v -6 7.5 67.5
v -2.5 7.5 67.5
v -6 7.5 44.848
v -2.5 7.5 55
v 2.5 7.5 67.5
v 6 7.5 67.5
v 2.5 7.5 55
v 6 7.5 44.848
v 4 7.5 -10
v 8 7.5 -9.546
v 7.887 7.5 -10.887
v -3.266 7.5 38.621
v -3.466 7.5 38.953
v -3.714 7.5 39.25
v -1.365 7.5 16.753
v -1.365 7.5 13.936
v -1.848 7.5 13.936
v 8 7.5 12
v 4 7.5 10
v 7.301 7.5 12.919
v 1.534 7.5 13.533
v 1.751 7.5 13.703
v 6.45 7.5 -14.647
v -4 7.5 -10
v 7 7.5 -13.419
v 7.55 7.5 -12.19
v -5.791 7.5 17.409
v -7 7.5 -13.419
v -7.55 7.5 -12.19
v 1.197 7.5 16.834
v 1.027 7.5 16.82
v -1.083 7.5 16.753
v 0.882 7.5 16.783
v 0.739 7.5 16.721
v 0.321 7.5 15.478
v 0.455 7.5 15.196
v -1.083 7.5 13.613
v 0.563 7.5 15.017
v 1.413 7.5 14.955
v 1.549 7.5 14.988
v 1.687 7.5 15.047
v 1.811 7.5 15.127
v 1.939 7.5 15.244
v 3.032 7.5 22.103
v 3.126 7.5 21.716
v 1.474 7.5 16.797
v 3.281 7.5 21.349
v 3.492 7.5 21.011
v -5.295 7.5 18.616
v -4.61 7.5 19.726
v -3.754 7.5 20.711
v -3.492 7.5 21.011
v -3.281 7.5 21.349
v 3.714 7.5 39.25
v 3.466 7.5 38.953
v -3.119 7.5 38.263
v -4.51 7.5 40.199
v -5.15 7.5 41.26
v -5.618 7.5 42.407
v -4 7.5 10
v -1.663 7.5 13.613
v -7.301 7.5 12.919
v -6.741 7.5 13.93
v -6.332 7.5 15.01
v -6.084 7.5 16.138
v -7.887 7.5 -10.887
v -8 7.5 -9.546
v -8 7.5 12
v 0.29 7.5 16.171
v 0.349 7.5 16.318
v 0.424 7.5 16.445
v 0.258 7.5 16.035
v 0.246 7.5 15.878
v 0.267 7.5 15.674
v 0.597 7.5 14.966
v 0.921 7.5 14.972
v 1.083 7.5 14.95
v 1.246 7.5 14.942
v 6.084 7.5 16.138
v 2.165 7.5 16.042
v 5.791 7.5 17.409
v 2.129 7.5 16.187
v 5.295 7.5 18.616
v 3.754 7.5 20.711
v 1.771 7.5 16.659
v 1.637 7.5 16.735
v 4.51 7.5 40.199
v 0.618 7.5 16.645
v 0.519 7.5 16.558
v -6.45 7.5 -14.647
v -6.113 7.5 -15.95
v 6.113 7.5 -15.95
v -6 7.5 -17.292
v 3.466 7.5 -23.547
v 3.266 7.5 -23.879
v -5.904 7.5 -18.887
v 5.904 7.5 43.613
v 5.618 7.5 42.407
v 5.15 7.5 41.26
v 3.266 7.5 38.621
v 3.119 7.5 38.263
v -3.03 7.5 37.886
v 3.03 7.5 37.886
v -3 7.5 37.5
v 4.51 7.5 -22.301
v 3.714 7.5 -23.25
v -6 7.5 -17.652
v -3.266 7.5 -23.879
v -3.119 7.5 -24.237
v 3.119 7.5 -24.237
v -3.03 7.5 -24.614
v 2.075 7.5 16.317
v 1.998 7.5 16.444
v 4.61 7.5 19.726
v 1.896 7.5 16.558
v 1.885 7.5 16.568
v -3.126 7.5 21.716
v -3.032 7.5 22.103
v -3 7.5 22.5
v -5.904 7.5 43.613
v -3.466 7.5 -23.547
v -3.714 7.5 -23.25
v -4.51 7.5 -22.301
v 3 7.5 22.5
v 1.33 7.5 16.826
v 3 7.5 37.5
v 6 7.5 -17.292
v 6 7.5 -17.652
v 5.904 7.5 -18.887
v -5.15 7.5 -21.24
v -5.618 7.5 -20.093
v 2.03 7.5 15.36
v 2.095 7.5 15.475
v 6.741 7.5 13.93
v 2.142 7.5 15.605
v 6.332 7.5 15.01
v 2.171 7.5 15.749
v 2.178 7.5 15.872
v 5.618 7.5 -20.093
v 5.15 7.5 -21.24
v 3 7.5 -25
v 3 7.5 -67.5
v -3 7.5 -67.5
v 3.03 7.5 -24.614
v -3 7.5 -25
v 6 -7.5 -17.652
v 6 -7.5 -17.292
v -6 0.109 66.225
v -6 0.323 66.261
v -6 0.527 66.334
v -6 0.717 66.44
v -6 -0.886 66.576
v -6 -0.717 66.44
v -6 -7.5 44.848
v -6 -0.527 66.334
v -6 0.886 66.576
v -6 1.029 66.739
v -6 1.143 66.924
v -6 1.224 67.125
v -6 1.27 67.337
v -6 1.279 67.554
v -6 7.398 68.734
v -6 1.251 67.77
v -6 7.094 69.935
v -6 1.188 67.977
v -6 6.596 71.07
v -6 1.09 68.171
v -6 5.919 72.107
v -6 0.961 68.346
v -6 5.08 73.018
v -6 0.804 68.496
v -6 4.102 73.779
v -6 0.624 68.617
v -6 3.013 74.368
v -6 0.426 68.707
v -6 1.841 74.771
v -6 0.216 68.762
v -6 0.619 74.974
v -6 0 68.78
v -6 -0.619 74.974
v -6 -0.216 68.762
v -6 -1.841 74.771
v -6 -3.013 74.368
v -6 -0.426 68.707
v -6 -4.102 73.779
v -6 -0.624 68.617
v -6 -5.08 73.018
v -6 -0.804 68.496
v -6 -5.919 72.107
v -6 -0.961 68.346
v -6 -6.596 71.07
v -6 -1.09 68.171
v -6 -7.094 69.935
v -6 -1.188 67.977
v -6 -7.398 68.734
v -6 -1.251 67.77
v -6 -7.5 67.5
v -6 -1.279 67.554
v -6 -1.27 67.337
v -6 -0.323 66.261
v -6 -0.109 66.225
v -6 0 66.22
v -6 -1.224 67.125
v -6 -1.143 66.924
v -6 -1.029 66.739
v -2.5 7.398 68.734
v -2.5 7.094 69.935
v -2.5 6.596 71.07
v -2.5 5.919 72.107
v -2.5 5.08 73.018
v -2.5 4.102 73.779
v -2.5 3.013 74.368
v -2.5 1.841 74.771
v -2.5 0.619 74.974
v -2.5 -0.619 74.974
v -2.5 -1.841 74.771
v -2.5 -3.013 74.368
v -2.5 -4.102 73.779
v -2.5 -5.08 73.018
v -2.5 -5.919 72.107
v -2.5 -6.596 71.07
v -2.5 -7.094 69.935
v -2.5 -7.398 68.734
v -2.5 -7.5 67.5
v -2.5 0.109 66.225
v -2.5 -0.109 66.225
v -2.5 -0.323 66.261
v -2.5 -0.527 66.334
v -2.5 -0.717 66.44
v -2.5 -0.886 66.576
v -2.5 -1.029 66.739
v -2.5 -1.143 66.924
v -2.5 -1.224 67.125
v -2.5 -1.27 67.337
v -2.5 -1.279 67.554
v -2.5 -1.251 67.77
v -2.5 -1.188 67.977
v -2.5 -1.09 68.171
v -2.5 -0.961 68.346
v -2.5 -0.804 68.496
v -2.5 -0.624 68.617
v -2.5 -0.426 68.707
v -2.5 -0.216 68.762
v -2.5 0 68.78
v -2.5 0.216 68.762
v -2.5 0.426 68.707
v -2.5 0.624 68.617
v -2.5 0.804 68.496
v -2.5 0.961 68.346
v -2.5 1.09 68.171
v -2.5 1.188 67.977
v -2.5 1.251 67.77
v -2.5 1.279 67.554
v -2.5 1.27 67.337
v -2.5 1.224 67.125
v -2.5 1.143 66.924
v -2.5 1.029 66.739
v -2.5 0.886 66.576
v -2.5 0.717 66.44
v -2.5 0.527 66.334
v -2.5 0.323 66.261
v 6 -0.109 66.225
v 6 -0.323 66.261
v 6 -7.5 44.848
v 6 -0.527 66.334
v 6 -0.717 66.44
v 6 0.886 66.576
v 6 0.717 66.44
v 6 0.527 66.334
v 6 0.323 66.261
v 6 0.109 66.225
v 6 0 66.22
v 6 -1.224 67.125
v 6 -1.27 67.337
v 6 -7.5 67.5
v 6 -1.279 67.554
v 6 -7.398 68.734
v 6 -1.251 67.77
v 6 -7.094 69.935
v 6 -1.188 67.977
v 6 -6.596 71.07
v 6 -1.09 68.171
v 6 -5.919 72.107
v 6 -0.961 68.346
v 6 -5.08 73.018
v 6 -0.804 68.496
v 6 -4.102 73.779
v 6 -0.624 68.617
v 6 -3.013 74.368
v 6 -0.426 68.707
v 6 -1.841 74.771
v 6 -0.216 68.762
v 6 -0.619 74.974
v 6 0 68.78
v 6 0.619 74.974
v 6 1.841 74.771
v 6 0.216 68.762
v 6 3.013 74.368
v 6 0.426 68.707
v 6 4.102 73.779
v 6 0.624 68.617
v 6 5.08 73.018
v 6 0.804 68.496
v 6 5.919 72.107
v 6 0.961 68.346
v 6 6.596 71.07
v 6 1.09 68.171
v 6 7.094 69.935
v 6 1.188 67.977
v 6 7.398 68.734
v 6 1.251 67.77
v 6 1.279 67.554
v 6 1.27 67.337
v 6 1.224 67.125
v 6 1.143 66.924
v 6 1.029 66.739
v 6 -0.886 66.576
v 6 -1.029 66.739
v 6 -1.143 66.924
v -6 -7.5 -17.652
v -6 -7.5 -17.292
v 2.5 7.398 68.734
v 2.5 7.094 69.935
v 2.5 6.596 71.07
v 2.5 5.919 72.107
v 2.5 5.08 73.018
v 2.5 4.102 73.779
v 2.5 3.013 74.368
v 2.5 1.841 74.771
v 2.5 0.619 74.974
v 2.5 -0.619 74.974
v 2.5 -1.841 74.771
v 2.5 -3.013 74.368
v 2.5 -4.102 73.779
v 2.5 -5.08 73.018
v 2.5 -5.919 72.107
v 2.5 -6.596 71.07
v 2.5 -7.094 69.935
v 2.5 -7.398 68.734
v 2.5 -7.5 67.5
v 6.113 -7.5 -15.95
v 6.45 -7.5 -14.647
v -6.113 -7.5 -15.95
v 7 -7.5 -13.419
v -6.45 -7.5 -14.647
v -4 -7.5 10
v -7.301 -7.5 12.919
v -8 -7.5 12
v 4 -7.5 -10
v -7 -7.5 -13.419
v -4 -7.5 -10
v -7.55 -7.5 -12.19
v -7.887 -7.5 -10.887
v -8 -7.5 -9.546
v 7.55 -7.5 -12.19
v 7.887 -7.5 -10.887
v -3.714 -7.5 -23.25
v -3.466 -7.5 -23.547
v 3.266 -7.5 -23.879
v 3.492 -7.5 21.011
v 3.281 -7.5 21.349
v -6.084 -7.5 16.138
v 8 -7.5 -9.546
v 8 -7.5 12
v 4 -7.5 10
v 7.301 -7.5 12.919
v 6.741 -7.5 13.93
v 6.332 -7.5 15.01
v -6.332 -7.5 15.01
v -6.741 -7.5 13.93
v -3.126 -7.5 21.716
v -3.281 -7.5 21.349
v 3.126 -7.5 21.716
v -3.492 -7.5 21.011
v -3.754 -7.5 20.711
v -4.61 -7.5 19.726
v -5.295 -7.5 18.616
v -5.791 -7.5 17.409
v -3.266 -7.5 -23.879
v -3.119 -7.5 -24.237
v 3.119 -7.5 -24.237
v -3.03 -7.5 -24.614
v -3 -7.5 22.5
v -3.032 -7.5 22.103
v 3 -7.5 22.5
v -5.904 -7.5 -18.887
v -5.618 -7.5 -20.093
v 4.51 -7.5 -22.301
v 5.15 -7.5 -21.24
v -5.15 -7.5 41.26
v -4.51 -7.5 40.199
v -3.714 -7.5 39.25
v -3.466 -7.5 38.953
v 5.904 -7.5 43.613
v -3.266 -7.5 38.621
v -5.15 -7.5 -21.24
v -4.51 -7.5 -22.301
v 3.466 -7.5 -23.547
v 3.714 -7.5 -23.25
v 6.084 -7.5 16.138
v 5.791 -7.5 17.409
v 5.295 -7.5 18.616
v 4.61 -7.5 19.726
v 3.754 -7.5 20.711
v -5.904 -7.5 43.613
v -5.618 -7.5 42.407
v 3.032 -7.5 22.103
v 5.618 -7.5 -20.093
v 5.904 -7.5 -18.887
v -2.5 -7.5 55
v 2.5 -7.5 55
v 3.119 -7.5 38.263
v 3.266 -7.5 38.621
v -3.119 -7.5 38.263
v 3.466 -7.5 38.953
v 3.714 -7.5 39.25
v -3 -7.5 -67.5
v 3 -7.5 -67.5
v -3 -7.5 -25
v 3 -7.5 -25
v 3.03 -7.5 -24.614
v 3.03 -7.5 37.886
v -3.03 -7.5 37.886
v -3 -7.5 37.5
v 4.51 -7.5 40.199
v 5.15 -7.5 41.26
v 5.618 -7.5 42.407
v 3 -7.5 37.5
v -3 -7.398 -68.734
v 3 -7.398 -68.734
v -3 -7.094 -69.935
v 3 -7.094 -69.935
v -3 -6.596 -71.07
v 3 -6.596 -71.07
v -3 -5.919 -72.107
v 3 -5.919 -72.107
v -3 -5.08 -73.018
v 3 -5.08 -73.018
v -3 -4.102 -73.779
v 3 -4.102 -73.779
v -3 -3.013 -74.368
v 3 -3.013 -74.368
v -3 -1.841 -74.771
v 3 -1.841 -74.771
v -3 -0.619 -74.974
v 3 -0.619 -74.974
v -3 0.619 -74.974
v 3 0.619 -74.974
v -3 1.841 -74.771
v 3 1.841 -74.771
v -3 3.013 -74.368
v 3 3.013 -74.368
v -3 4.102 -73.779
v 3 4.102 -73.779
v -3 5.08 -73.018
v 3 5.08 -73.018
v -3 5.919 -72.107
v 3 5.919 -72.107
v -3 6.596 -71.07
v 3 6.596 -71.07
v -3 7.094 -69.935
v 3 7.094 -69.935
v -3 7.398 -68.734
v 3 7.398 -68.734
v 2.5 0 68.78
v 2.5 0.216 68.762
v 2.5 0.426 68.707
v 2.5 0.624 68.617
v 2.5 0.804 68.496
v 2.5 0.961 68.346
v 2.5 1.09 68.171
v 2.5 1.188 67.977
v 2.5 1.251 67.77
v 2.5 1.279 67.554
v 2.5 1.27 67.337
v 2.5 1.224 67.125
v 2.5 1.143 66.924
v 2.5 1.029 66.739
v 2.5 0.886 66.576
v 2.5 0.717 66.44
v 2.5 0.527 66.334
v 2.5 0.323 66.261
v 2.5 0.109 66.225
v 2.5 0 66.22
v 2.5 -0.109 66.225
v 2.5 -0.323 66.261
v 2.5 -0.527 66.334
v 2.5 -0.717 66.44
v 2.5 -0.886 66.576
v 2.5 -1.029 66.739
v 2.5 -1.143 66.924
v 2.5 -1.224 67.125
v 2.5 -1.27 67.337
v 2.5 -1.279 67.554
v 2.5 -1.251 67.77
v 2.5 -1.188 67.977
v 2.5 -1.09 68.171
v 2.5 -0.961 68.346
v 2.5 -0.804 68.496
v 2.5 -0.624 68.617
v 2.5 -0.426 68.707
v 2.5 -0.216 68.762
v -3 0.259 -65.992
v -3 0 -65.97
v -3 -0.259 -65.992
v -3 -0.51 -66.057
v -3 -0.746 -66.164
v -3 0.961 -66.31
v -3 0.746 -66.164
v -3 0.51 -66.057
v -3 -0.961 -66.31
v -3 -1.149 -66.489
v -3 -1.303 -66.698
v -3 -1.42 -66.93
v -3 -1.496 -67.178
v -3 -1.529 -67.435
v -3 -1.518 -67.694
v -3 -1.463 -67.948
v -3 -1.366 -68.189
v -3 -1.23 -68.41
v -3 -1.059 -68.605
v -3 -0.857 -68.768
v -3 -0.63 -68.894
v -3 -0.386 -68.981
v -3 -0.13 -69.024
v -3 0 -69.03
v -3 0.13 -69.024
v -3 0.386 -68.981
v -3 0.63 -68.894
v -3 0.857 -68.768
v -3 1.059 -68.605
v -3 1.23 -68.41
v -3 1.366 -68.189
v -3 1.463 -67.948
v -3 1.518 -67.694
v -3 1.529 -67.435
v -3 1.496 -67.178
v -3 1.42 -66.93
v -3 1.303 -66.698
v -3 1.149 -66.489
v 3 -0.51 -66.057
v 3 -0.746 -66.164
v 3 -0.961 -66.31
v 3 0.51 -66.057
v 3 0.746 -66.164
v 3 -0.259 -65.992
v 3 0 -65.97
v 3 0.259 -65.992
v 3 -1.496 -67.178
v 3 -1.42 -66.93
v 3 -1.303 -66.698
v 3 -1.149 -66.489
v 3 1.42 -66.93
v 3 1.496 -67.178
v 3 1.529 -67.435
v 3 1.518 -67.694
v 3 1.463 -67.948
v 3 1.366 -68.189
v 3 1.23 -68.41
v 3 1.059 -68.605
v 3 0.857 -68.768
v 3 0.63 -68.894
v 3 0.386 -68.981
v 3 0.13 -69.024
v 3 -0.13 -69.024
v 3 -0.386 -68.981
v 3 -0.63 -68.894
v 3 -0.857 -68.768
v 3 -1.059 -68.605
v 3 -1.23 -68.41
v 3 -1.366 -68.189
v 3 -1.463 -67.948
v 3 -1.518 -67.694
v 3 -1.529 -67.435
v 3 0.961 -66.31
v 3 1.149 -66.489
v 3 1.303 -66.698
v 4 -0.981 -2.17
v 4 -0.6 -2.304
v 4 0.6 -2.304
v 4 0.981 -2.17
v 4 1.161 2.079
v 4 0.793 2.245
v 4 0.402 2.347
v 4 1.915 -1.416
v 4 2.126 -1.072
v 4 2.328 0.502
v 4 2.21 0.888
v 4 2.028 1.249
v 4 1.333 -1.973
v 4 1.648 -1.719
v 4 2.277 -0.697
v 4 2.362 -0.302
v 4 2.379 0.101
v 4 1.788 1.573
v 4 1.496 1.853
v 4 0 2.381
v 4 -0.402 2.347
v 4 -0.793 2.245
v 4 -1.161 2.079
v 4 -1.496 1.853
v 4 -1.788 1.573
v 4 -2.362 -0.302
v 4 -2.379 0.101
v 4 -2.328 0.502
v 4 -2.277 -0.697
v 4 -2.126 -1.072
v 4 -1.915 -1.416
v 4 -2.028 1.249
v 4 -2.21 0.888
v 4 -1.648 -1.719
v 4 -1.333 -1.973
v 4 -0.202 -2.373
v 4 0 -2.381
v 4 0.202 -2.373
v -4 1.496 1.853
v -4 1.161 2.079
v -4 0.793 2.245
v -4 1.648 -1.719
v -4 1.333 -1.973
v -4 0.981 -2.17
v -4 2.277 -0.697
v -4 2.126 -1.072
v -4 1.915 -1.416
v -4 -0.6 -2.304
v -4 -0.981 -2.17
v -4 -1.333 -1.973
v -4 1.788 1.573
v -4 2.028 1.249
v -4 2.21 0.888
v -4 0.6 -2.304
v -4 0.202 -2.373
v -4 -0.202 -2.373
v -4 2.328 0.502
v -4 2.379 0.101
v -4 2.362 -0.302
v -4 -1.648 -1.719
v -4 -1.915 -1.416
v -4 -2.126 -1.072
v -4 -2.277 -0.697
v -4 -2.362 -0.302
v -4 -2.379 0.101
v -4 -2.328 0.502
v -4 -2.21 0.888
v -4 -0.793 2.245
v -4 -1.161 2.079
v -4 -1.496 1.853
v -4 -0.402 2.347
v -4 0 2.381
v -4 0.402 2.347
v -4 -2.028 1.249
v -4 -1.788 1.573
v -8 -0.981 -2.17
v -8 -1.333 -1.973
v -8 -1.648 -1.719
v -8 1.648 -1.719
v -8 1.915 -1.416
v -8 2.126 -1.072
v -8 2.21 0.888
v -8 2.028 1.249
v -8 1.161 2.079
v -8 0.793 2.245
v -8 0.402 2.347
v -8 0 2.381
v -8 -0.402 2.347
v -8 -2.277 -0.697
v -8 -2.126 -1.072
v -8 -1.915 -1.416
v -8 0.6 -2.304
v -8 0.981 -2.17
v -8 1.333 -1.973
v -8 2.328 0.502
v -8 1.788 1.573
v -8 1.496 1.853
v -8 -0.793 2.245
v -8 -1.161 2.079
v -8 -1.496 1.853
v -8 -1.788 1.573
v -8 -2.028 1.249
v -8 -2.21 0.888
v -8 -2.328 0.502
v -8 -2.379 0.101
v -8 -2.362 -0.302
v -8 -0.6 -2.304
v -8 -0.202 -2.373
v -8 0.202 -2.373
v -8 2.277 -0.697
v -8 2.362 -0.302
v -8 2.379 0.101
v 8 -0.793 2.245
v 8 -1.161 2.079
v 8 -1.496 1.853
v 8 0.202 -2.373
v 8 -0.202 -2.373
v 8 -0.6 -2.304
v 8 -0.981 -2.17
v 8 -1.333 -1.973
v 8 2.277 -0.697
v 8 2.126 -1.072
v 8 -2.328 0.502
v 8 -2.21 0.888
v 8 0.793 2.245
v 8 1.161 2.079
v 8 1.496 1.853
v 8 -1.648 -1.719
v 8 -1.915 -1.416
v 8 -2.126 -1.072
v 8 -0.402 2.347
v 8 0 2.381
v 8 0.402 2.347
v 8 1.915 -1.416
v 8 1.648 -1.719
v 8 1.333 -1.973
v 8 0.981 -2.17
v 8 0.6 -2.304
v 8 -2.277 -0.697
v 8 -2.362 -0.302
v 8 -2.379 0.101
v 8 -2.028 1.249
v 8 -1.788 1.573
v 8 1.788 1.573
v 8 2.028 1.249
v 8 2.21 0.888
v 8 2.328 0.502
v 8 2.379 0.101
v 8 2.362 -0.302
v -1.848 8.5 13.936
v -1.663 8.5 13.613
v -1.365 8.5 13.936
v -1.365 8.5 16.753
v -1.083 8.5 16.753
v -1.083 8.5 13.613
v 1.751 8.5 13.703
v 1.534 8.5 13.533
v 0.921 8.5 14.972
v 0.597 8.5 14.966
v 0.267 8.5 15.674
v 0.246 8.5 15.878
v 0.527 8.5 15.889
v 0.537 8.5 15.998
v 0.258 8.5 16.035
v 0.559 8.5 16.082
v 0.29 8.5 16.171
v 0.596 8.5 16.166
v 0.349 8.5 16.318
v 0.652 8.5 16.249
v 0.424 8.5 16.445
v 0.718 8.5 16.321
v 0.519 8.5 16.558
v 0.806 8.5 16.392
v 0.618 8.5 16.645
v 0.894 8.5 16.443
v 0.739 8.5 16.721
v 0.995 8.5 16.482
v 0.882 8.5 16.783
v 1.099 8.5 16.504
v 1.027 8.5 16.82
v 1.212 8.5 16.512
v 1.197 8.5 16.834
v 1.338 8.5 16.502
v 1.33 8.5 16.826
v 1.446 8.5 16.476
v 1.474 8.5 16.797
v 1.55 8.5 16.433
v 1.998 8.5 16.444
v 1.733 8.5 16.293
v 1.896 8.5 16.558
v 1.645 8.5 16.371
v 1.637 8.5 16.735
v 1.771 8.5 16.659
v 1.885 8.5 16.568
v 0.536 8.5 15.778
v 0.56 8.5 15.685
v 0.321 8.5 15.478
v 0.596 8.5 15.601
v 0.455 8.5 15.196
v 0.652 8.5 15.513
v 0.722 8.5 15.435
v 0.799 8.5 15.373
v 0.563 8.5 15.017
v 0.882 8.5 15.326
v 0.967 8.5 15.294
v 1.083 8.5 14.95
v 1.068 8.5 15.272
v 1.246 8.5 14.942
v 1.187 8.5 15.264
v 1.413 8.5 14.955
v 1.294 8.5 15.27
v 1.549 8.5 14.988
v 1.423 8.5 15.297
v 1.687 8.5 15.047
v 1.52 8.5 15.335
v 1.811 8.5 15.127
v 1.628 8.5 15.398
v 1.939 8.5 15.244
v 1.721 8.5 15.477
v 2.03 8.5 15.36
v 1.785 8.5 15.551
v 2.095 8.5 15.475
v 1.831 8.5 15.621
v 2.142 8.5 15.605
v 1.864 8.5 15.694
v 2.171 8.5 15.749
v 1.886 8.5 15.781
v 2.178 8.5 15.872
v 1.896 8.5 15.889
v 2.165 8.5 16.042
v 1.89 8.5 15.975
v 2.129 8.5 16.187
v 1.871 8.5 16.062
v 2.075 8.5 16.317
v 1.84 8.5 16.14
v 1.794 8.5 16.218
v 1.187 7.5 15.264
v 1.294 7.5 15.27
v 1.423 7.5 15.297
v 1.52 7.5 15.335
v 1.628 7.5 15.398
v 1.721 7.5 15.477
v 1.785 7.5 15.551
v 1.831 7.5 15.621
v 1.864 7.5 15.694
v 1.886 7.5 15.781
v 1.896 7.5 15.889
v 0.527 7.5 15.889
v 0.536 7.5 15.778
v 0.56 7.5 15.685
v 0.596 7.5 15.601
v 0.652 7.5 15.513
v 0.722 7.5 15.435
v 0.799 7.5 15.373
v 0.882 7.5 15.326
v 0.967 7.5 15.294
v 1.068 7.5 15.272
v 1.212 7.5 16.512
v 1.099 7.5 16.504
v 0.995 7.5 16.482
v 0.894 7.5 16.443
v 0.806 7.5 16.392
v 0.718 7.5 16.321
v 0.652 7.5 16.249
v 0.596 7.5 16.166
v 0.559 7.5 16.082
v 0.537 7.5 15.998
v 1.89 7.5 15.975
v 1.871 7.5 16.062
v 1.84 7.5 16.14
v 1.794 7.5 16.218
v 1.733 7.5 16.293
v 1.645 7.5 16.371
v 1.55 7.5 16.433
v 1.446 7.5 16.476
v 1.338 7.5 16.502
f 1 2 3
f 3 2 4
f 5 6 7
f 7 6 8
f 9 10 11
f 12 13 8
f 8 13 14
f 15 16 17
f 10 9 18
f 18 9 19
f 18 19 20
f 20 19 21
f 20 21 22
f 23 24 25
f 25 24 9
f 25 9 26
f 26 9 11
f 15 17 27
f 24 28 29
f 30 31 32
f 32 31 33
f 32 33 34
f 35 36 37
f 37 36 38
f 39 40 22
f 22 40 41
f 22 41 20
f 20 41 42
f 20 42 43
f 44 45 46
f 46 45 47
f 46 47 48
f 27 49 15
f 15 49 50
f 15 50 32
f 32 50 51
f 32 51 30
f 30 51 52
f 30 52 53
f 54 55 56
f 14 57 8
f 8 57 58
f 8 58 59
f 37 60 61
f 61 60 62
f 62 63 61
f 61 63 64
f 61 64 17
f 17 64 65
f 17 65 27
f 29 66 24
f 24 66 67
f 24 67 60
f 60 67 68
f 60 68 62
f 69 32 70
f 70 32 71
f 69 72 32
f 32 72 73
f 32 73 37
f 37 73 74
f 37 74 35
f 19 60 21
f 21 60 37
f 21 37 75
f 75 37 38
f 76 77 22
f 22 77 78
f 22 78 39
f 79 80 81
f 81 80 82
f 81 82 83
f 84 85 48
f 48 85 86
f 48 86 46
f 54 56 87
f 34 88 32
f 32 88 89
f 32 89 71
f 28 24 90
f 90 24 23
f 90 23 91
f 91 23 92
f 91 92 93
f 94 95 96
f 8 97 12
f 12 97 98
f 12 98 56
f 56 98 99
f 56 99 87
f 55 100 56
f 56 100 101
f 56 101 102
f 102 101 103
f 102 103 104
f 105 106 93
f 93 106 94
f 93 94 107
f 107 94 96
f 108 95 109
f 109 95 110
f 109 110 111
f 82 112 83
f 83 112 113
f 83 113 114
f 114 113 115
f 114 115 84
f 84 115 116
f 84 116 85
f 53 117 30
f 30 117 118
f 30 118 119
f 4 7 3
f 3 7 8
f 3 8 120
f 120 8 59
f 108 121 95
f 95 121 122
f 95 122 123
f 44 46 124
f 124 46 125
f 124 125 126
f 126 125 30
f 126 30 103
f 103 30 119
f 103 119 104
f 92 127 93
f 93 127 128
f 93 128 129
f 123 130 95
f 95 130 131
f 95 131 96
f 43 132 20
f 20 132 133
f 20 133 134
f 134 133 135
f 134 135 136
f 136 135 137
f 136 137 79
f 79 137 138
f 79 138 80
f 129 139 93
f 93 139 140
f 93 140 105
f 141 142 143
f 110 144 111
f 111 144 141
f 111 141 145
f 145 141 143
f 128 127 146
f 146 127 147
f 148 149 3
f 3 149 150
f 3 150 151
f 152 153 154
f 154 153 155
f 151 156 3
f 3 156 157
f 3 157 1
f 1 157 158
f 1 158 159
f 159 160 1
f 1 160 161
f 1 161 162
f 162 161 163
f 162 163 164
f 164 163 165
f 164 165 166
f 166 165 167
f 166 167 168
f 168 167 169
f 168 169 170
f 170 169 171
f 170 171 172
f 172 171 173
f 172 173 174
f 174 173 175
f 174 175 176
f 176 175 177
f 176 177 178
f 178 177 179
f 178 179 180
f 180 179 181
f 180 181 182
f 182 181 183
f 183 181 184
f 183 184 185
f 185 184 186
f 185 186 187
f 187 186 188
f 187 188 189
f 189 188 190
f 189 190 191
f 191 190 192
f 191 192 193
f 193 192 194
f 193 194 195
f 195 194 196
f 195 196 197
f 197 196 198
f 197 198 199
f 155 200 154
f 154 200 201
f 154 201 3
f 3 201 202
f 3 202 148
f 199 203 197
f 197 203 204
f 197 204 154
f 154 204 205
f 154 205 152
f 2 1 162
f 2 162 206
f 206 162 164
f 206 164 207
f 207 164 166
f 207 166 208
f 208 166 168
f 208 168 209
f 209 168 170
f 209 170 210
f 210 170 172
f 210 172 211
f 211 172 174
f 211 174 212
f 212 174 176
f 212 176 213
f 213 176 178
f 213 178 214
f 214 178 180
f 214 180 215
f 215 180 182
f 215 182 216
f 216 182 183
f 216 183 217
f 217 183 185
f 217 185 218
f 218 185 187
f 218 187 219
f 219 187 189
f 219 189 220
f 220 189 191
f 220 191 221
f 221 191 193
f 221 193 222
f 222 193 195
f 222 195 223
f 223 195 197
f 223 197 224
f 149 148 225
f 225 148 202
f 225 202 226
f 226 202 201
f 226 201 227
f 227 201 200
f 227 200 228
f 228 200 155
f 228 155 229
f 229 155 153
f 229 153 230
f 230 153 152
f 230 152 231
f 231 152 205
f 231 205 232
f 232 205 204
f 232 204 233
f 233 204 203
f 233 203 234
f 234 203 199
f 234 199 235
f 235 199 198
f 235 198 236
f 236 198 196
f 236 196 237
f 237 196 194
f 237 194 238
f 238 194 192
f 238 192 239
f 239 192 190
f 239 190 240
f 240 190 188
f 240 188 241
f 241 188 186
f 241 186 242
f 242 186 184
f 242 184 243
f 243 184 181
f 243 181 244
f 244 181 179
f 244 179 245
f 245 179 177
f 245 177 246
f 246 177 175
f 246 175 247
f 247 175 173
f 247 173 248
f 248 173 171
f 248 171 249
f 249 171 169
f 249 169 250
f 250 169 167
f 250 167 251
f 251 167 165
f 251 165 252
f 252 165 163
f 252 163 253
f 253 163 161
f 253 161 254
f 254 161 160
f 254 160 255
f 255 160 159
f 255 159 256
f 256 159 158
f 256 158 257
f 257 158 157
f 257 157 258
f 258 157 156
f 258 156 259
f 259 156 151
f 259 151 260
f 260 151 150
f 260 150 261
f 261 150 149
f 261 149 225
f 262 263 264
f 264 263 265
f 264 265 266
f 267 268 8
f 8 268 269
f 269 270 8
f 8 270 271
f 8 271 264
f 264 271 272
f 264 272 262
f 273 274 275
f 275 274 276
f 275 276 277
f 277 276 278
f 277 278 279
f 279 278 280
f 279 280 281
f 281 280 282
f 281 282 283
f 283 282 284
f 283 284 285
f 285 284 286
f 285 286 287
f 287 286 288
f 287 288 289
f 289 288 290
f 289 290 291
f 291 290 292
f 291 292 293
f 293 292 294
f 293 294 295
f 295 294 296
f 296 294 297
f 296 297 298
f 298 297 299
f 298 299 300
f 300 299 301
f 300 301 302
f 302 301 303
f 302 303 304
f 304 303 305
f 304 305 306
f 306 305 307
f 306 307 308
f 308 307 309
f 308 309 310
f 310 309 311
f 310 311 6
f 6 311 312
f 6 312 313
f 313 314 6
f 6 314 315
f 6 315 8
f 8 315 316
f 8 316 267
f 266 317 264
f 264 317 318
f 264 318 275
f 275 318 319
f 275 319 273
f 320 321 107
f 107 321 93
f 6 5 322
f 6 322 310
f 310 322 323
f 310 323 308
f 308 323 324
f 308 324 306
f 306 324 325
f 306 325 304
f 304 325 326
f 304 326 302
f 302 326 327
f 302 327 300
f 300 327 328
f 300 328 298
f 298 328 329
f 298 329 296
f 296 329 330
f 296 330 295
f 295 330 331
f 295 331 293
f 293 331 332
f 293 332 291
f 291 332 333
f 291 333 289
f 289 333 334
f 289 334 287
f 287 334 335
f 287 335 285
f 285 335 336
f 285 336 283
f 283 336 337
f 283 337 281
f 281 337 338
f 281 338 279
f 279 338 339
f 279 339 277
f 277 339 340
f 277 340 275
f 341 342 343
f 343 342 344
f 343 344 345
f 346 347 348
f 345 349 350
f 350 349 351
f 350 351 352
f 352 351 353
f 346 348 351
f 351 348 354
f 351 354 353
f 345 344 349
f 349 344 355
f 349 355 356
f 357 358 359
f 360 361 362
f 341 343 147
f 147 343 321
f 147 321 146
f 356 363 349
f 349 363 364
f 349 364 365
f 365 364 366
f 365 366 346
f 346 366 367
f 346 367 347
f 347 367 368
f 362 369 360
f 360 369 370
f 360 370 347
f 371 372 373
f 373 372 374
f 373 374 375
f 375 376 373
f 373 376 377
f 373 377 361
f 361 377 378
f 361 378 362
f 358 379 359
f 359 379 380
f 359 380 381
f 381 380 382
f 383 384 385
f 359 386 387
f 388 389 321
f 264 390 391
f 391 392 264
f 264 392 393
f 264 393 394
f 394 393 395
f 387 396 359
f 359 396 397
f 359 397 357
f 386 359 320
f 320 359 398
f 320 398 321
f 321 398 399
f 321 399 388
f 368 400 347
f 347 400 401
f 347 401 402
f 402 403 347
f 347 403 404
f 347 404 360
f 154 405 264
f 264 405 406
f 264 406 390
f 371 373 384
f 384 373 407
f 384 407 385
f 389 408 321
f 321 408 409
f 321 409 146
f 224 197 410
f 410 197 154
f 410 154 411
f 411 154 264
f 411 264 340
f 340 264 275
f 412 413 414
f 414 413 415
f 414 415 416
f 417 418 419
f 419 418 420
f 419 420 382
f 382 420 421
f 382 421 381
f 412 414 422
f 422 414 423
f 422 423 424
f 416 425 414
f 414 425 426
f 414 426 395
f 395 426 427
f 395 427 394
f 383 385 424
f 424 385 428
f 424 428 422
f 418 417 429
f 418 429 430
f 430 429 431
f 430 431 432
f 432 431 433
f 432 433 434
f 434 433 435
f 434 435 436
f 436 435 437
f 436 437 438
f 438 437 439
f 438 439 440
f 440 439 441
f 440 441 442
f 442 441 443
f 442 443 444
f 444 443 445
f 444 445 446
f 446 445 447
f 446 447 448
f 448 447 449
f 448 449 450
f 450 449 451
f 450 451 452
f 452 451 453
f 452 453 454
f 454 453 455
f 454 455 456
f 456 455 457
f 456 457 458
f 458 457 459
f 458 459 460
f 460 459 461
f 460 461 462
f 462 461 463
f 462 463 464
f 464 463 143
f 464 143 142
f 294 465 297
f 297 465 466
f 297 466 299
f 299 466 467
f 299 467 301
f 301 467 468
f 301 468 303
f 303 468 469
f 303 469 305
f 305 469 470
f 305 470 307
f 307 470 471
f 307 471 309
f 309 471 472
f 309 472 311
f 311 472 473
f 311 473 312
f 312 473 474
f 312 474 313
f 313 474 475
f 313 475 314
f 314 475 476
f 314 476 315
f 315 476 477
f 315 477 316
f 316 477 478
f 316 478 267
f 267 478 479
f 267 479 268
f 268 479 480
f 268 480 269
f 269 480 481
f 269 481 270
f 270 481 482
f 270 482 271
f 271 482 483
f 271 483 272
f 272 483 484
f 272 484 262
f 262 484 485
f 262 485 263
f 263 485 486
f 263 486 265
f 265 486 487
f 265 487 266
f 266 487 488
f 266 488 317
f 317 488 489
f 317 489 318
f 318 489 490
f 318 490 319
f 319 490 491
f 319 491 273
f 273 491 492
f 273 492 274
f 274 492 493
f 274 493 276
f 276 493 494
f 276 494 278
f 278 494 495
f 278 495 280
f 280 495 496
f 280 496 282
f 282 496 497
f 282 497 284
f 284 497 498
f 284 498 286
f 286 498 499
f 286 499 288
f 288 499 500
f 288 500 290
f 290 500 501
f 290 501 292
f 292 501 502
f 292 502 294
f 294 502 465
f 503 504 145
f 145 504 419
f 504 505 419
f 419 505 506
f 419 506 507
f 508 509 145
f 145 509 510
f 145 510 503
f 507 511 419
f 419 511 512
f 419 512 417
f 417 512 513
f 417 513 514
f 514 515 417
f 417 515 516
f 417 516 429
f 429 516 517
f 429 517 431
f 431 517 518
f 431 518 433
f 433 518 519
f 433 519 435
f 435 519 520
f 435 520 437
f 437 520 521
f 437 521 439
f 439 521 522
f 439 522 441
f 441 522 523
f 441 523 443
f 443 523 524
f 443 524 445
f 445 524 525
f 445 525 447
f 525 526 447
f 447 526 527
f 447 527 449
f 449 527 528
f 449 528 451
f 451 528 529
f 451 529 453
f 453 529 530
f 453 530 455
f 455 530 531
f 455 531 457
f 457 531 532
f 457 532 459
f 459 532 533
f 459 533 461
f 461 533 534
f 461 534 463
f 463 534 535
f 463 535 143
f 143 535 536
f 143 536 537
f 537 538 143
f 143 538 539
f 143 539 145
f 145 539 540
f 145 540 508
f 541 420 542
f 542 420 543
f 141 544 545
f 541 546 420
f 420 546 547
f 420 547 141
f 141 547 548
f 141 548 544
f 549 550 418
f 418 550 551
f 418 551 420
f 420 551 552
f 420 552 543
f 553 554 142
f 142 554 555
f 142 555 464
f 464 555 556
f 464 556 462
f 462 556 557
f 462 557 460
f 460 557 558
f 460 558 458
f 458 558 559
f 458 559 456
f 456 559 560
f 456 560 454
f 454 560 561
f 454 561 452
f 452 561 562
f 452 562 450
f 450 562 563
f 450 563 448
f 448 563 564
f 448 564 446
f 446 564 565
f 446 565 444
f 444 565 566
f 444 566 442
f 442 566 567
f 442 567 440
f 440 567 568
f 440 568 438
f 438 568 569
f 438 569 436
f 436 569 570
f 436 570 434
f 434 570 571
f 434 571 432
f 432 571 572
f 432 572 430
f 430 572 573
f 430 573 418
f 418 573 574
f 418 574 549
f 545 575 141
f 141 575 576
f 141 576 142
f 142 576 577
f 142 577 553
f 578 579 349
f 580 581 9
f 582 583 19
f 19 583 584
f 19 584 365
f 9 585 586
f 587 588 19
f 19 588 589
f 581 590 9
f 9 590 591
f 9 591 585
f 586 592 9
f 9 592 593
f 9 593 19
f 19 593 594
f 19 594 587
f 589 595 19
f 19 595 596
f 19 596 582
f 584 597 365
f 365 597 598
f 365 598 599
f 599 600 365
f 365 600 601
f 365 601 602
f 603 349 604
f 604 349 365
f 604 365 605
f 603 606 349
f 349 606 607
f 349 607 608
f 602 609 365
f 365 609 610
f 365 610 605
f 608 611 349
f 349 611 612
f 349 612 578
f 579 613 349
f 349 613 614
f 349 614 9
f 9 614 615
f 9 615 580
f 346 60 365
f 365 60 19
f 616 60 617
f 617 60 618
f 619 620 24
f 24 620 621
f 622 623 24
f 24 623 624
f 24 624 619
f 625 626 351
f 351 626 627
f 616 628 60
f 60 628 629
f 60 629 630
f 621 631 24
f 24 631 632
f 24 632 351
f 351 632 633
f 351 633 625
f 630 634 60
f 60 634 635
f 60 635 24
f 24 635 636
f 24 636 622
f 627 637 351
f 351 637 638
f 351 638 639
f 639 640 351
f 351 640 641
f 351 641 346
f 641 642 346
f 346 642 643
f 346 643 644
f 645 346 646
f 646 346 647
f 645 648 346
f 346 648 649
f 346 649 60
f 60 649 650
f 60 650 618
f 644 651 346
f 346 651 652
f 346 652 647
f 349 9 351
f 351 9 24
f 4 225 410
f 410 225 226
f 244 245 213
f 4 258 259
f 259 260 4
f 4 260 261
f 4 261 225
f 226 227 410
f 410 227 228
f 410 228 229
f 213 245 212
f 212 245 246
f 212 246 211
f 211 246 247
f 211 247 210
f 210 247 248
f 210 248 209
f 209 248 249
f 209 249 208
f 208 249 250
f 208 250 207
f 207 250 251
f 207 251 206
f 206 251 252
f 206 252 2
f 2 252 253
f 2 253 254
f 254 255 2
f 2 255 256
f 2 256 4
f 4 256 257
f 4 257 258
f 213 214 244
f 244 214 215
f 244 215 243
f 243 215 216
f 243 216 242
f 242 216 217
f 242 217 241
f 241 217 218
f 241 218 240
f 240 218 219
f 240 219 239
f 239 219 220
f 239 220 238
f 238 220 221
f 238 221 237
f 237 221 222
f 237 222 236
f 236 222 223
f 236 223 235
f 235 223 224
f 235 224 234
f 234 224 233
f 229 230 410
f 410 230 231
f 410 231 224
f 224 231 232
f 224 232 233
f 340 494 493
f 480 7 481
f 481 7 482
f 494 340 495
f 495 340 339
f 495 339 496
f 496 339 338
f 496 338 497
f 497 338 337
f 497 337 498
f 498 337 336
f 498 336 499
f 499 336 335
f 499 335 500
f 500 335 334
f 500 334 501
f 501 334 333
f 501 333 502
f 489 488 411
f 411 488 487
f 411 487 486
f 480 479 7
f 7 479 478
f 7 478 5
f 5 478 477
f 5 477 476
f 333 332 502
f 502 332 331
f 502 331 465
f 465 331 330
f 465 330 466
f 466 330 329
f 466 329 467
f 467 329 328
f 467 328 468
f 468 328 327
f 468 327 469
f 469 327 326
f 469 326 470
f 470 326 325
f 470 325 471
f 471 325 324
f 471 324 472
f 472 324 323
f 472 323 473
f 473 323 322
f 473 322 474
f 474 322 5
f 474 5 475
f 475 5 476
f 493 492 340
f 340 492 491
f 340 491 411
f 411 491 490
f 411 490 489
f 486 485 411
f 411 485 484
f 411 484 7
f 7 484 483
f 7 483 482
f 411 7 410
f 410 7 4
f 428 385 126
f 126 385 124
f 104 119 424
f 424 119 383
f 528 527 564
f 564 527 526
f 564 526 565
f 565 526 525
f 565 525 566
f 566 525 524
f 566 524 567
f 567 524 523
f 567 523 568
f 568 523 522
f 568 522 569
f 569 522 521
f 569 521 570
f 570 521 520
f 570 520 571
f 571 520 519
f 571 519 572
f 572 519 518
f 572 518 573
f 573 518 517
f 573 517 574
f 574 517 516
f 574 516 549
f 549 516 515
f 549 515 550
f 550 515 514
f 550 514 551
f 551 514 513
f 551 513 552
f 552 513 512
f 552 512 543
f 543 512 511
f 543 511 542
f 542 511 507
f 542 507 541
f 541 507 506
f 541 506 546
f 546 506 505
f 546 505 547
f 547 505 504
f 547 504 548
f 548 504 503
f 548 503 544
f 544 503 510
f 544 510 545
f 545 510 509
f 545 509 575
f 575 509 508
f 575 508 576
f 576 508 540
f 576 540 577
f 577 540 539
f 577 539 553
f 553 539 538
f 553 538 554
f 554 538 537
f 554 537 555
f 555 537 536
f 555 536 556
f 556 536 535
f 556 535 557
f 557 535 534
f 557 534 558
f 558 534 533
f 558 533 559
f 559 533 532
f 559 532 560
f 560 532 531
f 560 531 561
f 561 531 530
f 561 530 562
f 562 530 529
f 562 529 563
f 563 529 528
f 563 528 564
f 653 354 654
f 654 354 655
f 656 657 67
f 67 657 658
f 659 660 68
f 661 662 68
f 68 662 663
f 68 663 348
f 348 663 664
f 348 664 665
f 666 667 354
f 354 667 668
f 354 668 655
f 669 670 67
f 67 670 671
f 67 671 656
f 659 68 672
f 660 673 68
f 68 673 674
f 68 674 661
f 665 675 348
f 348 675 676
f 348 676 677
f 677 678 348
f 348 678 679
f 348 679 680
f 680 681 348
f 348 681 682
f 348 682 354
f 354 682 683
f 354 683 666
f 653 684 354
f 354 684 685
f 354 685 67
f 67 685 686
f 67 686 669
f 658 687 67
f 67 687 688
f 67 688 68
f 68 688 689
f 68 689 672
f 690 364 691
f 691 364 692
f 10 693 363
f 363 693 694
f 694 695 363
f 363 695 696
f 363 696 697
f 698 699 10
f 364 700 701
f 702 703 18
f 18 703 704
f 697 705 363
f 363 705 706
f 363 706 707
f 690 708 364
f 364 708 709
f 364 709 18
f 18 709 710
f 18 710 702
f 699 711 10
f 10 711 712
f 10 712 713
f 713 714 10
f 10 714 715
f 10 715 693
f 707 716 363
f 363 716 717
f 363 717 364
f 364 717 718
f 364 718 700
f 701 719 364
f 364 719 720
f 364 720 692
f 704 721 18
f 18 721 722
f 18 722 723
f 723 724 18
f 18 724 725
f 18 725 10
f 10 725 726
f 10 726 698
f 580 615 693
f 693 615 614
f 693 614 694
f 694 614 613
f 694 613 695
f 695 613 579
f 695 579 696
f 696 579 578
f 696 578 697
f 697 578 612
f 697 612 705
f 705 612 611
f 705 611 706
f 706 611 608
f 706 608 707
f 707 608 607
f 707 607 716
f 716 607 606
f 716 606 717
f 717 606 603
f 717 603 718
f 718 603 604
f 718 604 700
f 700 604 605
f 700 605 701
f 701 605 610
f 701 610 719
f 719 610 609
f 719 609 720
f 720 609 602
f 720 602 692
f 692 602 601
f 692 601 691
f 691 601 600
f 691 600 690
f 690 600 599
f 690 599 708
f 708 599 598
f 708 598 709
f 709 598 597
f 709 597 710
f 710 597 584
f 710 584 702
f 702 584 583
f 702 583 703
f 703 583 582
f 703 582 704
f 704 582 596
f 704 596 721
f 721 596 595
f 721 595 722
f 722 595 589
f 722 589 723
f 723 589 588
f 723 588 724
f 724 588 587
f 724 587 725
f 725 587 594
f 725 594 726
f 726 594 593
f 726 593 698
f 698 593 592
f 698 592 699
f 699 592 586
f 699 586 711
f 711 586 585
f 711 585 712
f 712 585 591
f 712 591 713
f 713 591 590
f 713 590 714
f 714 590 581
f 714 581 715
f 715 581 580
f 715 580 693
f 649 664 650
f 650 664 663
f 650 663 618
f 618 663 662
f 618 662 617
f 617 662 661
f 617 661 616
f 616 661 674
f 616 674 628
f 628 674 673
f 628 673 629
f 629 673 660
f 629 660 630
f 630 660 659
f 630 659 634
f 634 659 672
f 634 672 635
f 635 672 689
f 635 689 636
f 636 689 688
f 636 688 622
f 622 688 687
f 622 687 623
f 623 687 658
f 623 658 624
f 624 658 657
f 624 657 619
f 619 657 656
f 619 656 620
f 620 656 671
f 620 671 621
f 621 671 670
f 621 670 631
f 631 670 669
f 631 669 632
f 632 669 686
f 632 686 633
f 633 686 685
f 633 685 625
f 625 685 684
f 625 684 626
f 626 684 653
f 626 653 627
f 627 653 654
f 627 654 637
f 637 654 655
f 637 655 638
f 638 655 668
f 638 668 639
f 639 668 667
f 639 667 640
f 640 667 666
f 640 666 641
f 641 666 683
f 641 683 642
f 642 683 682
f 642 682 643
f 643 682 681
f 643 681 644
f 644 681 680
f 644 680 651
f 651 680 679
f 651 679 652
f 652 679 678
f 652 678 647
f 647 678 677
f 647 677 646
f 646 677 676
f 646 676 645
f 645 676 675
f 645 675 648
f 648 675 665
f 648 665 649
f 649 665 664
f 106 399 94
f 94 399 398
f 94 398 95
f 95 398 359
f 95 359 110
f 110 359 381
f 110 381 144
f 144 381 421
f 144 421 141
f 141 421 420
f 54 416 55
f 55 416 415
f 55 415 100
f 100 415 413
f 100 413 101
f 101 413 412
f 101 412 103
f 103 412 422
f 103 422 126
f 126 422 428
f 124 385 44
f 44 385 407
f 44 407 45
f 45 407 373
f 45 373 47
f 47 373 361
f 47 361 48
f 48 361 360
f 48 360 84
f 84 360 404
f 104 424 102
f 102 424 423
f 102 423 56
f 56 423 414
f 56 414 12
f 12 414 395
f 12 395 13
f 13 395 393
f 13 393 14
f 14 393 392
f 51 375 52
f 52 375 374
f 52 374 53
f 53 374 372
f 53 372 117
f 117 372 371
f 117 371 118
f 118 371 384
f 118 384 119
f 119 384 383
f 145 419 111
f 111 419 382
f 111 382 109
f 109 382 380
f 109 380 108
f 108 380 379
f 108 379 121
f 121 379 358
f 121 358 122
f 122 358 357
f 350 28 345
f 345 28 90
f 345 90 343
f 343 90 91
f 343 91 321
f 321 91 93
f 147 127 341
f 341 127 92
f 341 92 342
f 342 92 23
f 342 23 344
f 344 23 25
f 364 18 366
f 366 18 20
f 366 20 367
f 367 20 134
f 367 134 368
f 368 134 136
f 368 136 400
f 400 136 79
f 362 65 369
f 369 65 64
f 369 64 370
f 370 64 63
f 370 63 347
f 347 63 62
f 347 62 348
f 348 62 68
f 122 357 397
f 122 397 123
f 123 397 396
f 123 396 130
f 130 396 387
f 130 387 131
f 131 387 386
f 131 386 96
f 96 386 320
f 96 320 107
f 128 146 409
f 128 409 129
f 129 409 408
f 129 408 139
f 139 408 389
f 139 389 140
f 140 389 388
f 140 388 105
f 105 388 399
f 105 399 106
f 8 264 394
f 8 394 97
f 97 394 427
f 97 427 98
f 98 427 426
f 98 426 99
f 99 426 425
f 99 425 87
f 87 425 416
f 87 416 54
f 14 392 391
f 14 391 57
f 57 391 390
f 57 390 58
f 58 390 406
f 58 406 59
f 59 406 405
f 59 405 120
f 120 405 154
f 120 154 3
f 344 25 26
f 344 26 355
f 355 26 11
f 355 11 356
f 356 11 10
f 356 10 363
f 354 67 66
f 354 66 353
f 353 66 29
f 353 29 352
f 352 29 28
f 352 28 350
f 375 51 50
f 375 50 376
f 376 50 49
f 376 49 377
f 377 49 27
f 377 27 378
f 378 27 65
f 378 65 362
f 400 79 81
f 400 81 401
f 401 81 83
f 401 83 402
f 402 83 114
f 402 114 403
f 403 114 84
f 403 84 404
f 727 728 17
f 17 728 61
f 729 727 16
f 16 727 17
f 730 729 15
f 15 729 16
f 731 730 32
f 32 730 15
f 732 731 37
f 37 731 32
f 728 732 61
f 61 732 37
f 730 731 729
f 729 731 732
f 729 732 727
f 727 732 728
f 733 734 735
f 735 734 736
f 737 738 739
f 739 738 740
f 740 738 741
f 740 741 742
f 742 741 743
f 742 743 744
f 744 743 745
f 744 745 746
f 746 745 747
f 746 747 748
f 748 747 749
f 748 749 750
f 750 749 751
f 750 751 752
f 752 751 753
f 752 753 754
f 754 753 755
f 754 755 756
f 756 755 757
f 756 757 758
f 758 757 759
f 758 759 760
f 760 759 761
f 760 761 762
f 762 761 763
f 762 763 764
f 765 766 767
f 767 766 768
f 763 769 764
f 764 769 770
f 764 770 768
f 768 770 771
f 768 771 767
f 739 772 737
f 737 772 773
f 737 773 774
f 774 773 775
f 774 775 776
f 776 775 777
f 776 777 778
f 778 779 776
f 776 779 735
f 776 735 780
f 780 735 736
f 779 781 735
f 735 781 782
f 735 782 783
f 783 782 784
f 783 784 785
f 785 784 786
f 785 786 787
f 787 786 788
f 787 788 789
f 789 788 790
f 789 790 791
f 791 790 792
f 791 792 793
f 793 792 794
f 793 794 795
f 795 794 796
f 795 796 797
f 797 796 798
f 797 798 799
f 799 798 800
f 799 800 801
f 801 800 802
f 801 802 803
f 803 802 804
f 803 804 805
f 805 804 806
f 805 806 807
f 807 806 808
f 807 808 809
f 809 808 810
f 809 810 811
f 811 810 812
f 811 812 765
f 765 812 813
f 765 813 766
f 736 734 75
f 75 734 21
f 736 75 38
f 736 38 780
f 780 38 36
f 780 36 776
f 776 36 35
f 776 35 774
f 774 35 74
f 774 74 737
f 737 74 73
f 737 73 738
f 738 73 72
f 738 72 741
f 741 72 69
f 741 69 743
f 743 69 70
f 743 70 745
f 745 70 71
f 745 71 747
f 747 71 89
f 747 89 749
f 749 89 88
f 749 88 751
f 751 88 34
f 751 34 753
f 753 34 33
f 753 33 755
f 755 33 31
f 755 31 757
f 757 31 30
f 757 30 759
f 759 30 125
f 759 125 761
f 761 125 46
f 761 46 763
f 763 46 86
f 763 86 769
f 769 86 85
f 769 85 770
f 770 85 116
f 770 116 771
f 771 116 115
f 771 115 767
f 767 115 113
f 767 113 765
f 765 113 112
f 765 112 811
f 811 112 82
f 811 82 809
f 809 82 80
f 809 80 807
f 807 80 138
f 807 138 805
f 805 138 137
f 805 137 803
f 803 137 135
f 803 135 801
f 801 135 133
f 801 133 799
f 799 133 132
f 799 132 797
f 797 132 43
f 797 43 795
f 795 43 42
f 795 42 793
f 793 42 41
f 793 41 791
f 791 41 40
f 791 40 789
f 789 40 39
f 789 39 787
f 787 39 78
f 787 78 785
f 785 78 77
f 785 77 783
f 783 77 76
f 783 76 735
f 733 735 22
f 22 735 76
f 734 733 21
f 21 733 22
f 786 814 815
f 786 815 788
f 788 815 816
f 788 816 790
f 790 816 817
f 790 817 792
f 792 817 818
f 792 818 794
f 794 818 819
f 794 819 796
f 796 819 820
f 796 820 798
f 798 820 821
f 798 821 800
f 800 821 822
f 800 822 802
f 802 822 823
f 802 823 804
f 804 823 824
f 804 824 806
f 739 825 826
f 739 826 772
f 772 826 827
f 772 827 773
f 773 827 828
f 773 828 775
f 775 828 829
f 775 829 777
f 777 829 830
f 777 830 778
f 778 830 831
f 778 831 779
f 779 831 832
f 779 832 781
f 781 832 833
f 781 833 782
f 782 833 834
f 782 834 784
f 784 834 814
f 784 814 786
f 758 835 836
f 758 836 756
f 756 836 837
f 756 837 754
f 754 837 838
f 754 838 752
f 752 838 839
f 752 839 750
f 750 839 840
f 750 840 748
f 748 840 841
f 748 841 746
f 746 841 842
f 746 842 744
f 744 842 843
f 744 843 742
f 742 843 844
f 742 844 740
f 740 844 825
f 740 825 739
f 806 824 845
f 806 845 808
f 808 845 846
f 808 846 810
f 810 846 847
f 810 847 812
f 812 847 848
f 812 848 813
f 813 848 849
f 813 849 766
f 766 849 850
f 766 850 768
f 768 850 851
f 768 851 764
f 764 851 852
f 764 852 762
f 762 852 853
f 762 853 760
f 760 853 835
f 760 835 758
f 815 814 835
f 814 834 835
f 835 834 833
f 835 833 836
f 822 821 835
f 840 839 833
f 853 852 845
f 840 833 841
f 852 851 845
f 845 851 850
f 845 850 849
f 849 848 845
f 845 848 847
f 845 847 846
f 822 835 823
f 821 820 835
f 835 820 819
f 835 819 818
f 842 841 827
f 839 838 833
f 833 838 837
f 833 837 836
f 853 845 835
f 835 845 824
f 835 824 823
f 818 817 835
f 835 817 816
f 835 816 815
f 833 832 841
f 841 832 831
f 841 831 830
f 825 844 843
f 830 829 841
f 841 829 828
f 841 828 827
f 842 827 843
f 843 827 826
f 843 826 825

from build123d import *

# Parameters (mm, degrees)
SKETCH1_R           = 1.28
SKETCH1_R_2         = 2.38125
SKETCH1_R_3         = 1.53
BASE_DEPTH          = 6
ALL_CUTS_DEPTH      = 76.612498967
ALL_CUTS_DEPTH_BACK = 76.612498967
SKETCH2_W           = 5
SKETCH2_H           = 40
SKETCH2_W_2         = 6
SKETCH2_H_2         = 20
SKETCH2_H_3         = 52.5
SKETCH2_W_3         = 8
SKETCH3_W           = 16
SKETCH3_H           = 24
SKETCH3_W_2         = 8
SKETCH3_H_2         = 20
BOSS_EXTRUDE1_DEPTH = 15
SKETCH4_R           = 2.38125
CUT_EXTRUDE1_DEPTH  = 78.053552806
FILLET1_R           = 2.5
FILLET2_R           = 8
FILLET3_R           = 8
BOSS_EXTRUDE2_DEPTH = 1


with BuildPart() as part:
    # Sketch1 → BASE (new, symmetric)
    with BuildSketch(Plane(origin=(0, 0, 0), x_dir=(0, 0, -1), z_dir=(1, 0, 0))):
        with BuildLine():
            Line((-67.5, 7.5), (67.5, 7.5))
            ThreePointArc((67.5, 7.5), (75, 0), (67.5, -7.5))
            Line((67.5, -7.5), (-67.5, -7.5))
            ThreePointArc((-67.5, -7.5), (-75, 0), (-67.5, 7.5))
        make_face()
        with Locations((-67.5, 0)):
            Circle(SKETCH1_R, mode=Mode.SUBTRACT)
        Circle(SKETCH1_R_2, mode=Mode.SUBTRACT)
        with Locations((67.5, 0)):
            Circle(SKETCH1_R_3, mode=Mode.SUBTRACT)
    extrude(amount=BASE_DEPTH, both=True)

    # Sketch2 → All_Cuts (cut, two sides: drawn at the far end of the back side and taken through both)
    with BuildSketch(Plane(origin=(0, 0, 0), x_dir=(1, 0, 0), z_dir=(0, 1, 0)).offset(-ALL_CUTS_DEPTH_BACK)):
        with Locations((0, -75)):
            Rectangle(SKETCH2_W, SKETCH2_H)
        with Locations((-6, -30)):
            Rectangle(SKETCH2_W_2, SKETCH2_H_2)
        with Locations((6, -30)):
            Rectangle(SKETCH2_W_2, SKETCH2_H_2)
        with Locations((6, 48.75)):
            Rectangle(SKETCH2_W_2, SKETCH2_H_3)
        with Locations((-6, 48.75)):
            Rectangle(SKETCH2_W_2, SKETCH2_H_3)
        Rectangle(SKETCH2_W_3, SKETCH2_H_2)
    extrude(amount=ALL_CUTS_DEPTH + ALL_CUTS_DEPTH_BACK, mode=Mode.SUBTRACT)

    # Sketch3 → Boss-Extrude1 (add, through all)
    with BuildSketch(Plane.XZ.offset(7.5)):
        Rectangle(SKETCH3_W, SKETCH3_H)
        Rectangle(SKETCH3_W_2, SKETCH3_H_2, mode=Mode.SUBTRACT)
    extrude(amount=-BOSS_EXTRUDE1_DEPTH)

    # Sketch4 → Cut-Extrude1 (cut, through all)
    with BuildSketch(Plane.ZY.offset(8)):
        Circle(SKETCH4_R)
    extrude(amount=-CUT_EXTRUDE1_DEPTH, mode=Mode.SUBTRACT)

    # Fillet1
    fillet1_edges = [part.edges().sort_by_distance(p)[0] for p in [
        (3, 0, 20),
        (3, 0, 40),
        (-3, 0, 40),
        (-3, 0, 20),
        (3, 0, -22.5),
        (-3, 0, -22.5),
    ]]
    fillet(fillet1_edges, radius=FILLET1_R)

    # Fillet2
    # the kernel refuses this fillet: 8 mm, written as the material it adds along each edge
    with BuildSketch(Plane(origin=(-6, -7.5, -12), x_dir=(0, 0, -1), z_dir=(0, 1, 0))) as fillet2_piece_1:
        with BuildLine():
            CenterArc((5.291502622, 8), FILLET2_R, 228.590377891, 41.409622109)
            Line((0, 2), (-0.105830052, 1.88))
            ThreePointArc((-0.105830052, 1.88), (-0.16, 1), (-0.16, 0))
            Line((-0.16, 0), (0, -0.16))
            Line((0, -0.16), (5.291502622, -0.16))
            Line((5.291502622, -0.16), (5.291502622, 0))
        make_face()
    extrude(amount=15)
    with BuildSketch(Plane(origin=(6, -7.5, -12), x_dir=(1, 0, 0), z_dir=(0, 1, 0))) as fillet2_piece_2:
        with BuildLine():
            CenterArc((8, 5.291502622), FILLET2_R, 180, 41.409622109)
            Line((0, 5.291502622), (-0.16, 5.291502622))
            Line((-0.16, 5.291502622), (-0.16, 0))
            Line((-0.16, 0), (0, -0.16))
            ThreePointArc((0, -0.16), (1, -0.16), (1.88, -0.105830052))
            Line((1.88, -0.105830052), (2, 0))
        make_face()
    extrude(amount=15)
    with BuildSketch(Plane(origin=(6, 7.5, 12), x_dir=(0, 0, 1), z_dir=(0, -1, 0))) as fillet2_piece_3:
        with BuildLine():
            CenterArc((5.291502622, -8), FILLET2_R, 90, 41.409622109)
            Line((0, -2), (-0.105830052, -1.88))
            ThreePointArc((-0.105830052, -1.88), (-0.16, -1), (-0.16, 0))
            Line((-0.16, 0), (0, 0.16))
            Line((0, 0.16), (5.291502622, 0.16))
            Line((5.291502622, 0.16), (5.291502622, 0))
        make_face()
    extrude(amount=15)
    with BuildSketch(Plane(origin=(-6, 7.5, 12), x_dir=(-1, 0, 0), z_dir=(0, -1, 0))) as fillet2_piece_4:
        with BuildLine():
            CenterArc((8, -5.291502622), FILLET2_R, 138.590377891, 41.409622109)
            Line((0, -5.291502622), (-0.16, -5.291502622))
            Line((-0.16, -5.291502622), (-0.16, 0))
            Line((-0.16, 0), (0, 0.16))
            ThreePointArc((0, 0.16), (1, 0.16), (1.88, 0.105830052))
            Line((1.88, 0.105830052), (2, 0))
        make_face()
    extrude(amount=15)

    # Fillet3
    fillet3_edges = [part.edges().sort_by_distance(p)[0] for p in [
        (8, 0, -12),
        (-8, 0, -12),
        (-6, 0, 20),
        (6, 0, 20),
        (-6, 0, -22.5),
        (6, 0, -22.5),
        (6, 0, 40),
        (-6, 0, 40),
    ]]
    fillet(fillet3_edges, radius=FILLET3_R)

    # Sketch5 → Boss-Extrude2 (add)
    # profile 1 of 2: a face of its own
    with BuildSketch(Plane(origin=(0, 7.5, 0), x_dir=(1, 0, 0), z_dir=(0, 1, 0))):
        Polygon((-1.663472098, -13.613490945), (-1.082899181, -13.613490945), (-1.082899181, -16.753490945), (-1.364694053, -16.753490945), (-1.364694053, -13.935542228), (-1.847770976, -13.935542228), align=None)
    # profile 2 of 2: a face of its own
    with BuildSketch(Plane(origin=(0, 7.5, 0), x_dir=(1, 0, 0), z_dir=(0, 1, 0))):
        with BuildLine():
            Line((1.533767485, -13.532978125), (1.750774697, -13.703438862))
            Line((1.750774697, -13.703438862), (0.921115242, -14.972144792))
            add(Edge.make_bspline(
                [(0.921115242, -14.972144792), (0.976352576, -14.963340357), (1.084099242, -14.946166311), (1.193161219, -14.943333183), (1.246311556, -14.941952484)],
                knots=[0, 0, 0, 0, 1.025318673, 2, 2, 2, 2], degree=3))
            add(Edge.make_bspline(
                [(1.246311556, -14.941952484), (1.278225167, -14.942810253), (1.341046161, -14.944498745), (1.433278549, -14.957492828), (1.521906337, -14.977970214), (1.606562183, -15.007820181), (1.687549944, -15.045950865), (1.76533438, -15.091650308), (1.838453326, -15.147278262), (1.907848384, -15.209418822), (1.970852123, -15.278244917), (2.026632927, -15.351273544), (2.07348782, -15.42842862), (2.111503281, -15.509671066), (2.141023658, -15.594875647), (2.162544002, -15.68393335), (2.175265123, -15.776905584), (2.176992563, -15.840134576), (2.17787005, -15.872252965)],
                knots=[0, 0, 0, 0, 1.04369286, 2.054478336, 3.041073146, 4.015093852, 4.984733326, 5.965804835, 6.960378782, 7.985147595, 9.009457201, 10.008161701, 10.986880575, 11.956520048, 12.937015923, 13.931873656, 14.949455224, 16, 16, 16, 16], degree=3))
            add(Edge.make_bspline(
                [(2.17787005, -15.872252965), (2.176593321, -15.916194756), (2.174081022, -16.002661803), (2.149047331, -16.128599762), (2.110147535, -16.248576933), (2.054544838, -16.360677779), (1.985480643, -16.464748655), (1.901259031, -16.556961901), (1.804866873, -16.639203021), (1.69587586, -16.707974959), (1.578580744, -16.764138839), (1.45535638, -16.804479085), (1.327399455, -16.829315112), (1.240551892, -16.832428738), (1.19662005, -16.834003766)],
                knots=[0, 0, 0, 0, 1.031375318, 2.029502543, 3.004789286, 3.987476834, 4.960371455, 5.9300674, 6.912260825, 7.929083631, 8.949397511, 9.960523116, 10.96833055, 12, 12, 12, 12], degree=3))
            add(Edge.make_bspline(
                [(1.19662005, -16.834003766), (1.154367581, -16.832632747), (1.070672839, -16.829916999), (0.947555417, -16.8057247), (0.829255453, -16.766513185), (0.71660178, -16.712492375), (0.612245573, -16.644257589), (0.518883831, -16.562113144), (0.436982067, -16.467814938), (0.368821979, -16.361377598), (0.314761288, -16.247000893), (0.274219469, -16.127737273), (0.250538268, -16.00402129), (0.247229106, -15.920155353), (0.245562357, -15.877914022)],
                knots=[0, 0, 0, 0, 1.012016664, 2.004627821, 2.994792927, 3.992885782, 4.990978636, 5.973936114, 6.964471063, 7.975201453, 8.993600317, 9.990122807, 10.98767138, 12, 12, 12, 12], degree=3))
            add(Edge.make_bspline(
                [(0.245562357, -15.877914022), (0.246622282, -15.845576882), (0.248786446, -15.77955062), (0.263897374, -15.679551463), (0.288178361, -15.57723135), (0.315370982, -15.490429016), (0.344102529, -15.419320108), (0.368013665, -15.361989548), (0.397775479, -15.302992471), (0.429510455, -15.240305837), (0.466075189, -15.175545192), (0.505832657, -15.107628186), (0.549882058, -15.037634959), (0.580761861, -14.990136453), (0.596547934, -14.965854728)],
                knots=[0, 0, 0, 0, 1.173818275, 2.396712641, 3.66331629, 4.989737886, 5.693666774, 6.447286557, 7.243889047, 8.091586357, 8.998013824, 9.943181721, 10.948533338, 12, 12, 12, 12], degree=3))
            Line((0.596547934, -14.965854728), (1.533767485, -13.532978125))
        make_face()
        with BuildLine():
            add(Edge.make_bspline(
                [(1.187184953, -15.264003766), (1.163265111, -15.264701782), (1.11654271, -15.266065211), (1.047994344, -15.273982723), (0.983119027, -15.288892399), (0.921057255, -15.307881622), (0.862969316, -15.333991224), (0.808433043, -15.365706838), (0.757237539, -15.403046981), (0.709919038, -15.445482655), (0.667017969, -15.491943919), (0.630072611, -15.541708005), (0.598203944, -15.593575604), (0.572292826, -15.64798009), (0.552116016, -15.704900664), (0.537521071, -15.764075533), (0.529398562, -15.82590151), (0.528047257, -15.867827242), (0.527357229, -15.889236138)],
                knots=[0, 0, 0, 0, 1.129588631, 2.206414736, 3.251139165, 4.268635594, 5.265702196, 6.250456724, 7.242448911, 8.251968645, 9.246821453, 10.222880186, 11.173611482, 12.116736599, 13.062300278, 14.020270554, 14.989073742, 16, 16, 16, 16], degree=3))
            add(Edge.make_bspline(
                [(0.527357229, -15.889236138), (0.527919165, -15.910453548), (0.529021037, -15.952057732), (0.539026261, -16.013367738), (0.554309164, -16.072368256), (0.577043119, -16.128755119), (0.604160956, -16.183387816), (0.639961732, -16.234287472), (0.679630506, -16.284545478), (0.727048035, -16.330301084), (0.777936995, -16.372876455), (0.83230493, -16.410090168), (0.888968437, -16.441926335), (0.948692513, -16.466876863), (1.010629806, -16.487353509), (1.07529636, -16.50176295), (1.142737151, -16.509909479), (1.188421404, -16.511262544), (1.211716203, -16.511952484)],
                knots=[0, 0, 0, 0, 0.989467248, 1.94019797, 2.891935182, 3.827694429, 4.772920941, 5.730924762, 6.725747692, 7.756678648, 8.79901574, 9.819492441, 10.826891316, 11.826466727, 12.835195252, 13.867842842, 14.912794438, 16, 16, 16, 16], degree=3))
            add(Edge.make_bspline(
                [(1.211716203, -16.511952484), (1.235010965, -16.51126249), (1.280695143, -16.509909319), (1.348136476, -16.501763559), (1.412801025, -16.487351275), (1.474745607, -16.466884961), (1.534442776, -16.441896294), (1.591056726, -16.410288229), (1.644910502, -16.372647597), (1.695832868, -16.330373842), (1.74305303, -16.284285055), (1.783673217, -16.234736104), (1.818377604, -16.182976438), (1.84657856, -16.128970331), (1.869062119, -16.072334162), (1.884422521, -16.013376872), (1.894407083, -15.95205534), (1.895511794, -15.910452741), (1.896075178, -15.889236138)],
                knots=[0, 0, 0, 0, 1.087397944, 2.132534446, 3.165364764, 4.174271784, 5.174024072, 6.181601208, 7.194203697, 8.236725232, 9.267838612, 10.269026844, 11.221737037, 12.171628256, 13.107553087, 14.05945871, 15.010357665, 16, 16, 16, 16], degree=3))
            add(Edge.make_bspline(
                [(1.896075178, -15.889236138), (1.895581486, -15.867799312), (1.894612531, -15.825725795), (1.88365308, -15.764103189), (1.86845335, -15.704600004), (1.845501717, -15.64759021), (1.815683788, -15.593298778), (1.779364389, -15.541451456), (1.737348883, -15.491650744), (1.688815661, -15.445391539), (1.635982709, -15.403093875), (1.579807583, -15.365755187), (1.521037573, -15.334243065), (1.459732264, -15.307950408), (1.395189221, -15.288976308), (1.32845046, -15.27403597), (1.258662396, -15.266085474), (1.211314239, -15.264706507), (1.187184953, -15.264003766)],
                knots=[0, 0, 0, 0, 0.978206639, 1.919901502, 2.851605144, 3.780102724, 4.718870031, 5.675451981, 6.667674623, 7.690630536, 8.733308323, 9.756129687, 10.767539656, 11.776269907, 12.797430371, 13.836405707, 14.897401972, 16, 16, 16, 16], degree=3))
        make_face(mode=Mode.SUBTRACT)
    extrude(amount=BOSS_EXTRUDE2_DEPTH)


solid = part.part
